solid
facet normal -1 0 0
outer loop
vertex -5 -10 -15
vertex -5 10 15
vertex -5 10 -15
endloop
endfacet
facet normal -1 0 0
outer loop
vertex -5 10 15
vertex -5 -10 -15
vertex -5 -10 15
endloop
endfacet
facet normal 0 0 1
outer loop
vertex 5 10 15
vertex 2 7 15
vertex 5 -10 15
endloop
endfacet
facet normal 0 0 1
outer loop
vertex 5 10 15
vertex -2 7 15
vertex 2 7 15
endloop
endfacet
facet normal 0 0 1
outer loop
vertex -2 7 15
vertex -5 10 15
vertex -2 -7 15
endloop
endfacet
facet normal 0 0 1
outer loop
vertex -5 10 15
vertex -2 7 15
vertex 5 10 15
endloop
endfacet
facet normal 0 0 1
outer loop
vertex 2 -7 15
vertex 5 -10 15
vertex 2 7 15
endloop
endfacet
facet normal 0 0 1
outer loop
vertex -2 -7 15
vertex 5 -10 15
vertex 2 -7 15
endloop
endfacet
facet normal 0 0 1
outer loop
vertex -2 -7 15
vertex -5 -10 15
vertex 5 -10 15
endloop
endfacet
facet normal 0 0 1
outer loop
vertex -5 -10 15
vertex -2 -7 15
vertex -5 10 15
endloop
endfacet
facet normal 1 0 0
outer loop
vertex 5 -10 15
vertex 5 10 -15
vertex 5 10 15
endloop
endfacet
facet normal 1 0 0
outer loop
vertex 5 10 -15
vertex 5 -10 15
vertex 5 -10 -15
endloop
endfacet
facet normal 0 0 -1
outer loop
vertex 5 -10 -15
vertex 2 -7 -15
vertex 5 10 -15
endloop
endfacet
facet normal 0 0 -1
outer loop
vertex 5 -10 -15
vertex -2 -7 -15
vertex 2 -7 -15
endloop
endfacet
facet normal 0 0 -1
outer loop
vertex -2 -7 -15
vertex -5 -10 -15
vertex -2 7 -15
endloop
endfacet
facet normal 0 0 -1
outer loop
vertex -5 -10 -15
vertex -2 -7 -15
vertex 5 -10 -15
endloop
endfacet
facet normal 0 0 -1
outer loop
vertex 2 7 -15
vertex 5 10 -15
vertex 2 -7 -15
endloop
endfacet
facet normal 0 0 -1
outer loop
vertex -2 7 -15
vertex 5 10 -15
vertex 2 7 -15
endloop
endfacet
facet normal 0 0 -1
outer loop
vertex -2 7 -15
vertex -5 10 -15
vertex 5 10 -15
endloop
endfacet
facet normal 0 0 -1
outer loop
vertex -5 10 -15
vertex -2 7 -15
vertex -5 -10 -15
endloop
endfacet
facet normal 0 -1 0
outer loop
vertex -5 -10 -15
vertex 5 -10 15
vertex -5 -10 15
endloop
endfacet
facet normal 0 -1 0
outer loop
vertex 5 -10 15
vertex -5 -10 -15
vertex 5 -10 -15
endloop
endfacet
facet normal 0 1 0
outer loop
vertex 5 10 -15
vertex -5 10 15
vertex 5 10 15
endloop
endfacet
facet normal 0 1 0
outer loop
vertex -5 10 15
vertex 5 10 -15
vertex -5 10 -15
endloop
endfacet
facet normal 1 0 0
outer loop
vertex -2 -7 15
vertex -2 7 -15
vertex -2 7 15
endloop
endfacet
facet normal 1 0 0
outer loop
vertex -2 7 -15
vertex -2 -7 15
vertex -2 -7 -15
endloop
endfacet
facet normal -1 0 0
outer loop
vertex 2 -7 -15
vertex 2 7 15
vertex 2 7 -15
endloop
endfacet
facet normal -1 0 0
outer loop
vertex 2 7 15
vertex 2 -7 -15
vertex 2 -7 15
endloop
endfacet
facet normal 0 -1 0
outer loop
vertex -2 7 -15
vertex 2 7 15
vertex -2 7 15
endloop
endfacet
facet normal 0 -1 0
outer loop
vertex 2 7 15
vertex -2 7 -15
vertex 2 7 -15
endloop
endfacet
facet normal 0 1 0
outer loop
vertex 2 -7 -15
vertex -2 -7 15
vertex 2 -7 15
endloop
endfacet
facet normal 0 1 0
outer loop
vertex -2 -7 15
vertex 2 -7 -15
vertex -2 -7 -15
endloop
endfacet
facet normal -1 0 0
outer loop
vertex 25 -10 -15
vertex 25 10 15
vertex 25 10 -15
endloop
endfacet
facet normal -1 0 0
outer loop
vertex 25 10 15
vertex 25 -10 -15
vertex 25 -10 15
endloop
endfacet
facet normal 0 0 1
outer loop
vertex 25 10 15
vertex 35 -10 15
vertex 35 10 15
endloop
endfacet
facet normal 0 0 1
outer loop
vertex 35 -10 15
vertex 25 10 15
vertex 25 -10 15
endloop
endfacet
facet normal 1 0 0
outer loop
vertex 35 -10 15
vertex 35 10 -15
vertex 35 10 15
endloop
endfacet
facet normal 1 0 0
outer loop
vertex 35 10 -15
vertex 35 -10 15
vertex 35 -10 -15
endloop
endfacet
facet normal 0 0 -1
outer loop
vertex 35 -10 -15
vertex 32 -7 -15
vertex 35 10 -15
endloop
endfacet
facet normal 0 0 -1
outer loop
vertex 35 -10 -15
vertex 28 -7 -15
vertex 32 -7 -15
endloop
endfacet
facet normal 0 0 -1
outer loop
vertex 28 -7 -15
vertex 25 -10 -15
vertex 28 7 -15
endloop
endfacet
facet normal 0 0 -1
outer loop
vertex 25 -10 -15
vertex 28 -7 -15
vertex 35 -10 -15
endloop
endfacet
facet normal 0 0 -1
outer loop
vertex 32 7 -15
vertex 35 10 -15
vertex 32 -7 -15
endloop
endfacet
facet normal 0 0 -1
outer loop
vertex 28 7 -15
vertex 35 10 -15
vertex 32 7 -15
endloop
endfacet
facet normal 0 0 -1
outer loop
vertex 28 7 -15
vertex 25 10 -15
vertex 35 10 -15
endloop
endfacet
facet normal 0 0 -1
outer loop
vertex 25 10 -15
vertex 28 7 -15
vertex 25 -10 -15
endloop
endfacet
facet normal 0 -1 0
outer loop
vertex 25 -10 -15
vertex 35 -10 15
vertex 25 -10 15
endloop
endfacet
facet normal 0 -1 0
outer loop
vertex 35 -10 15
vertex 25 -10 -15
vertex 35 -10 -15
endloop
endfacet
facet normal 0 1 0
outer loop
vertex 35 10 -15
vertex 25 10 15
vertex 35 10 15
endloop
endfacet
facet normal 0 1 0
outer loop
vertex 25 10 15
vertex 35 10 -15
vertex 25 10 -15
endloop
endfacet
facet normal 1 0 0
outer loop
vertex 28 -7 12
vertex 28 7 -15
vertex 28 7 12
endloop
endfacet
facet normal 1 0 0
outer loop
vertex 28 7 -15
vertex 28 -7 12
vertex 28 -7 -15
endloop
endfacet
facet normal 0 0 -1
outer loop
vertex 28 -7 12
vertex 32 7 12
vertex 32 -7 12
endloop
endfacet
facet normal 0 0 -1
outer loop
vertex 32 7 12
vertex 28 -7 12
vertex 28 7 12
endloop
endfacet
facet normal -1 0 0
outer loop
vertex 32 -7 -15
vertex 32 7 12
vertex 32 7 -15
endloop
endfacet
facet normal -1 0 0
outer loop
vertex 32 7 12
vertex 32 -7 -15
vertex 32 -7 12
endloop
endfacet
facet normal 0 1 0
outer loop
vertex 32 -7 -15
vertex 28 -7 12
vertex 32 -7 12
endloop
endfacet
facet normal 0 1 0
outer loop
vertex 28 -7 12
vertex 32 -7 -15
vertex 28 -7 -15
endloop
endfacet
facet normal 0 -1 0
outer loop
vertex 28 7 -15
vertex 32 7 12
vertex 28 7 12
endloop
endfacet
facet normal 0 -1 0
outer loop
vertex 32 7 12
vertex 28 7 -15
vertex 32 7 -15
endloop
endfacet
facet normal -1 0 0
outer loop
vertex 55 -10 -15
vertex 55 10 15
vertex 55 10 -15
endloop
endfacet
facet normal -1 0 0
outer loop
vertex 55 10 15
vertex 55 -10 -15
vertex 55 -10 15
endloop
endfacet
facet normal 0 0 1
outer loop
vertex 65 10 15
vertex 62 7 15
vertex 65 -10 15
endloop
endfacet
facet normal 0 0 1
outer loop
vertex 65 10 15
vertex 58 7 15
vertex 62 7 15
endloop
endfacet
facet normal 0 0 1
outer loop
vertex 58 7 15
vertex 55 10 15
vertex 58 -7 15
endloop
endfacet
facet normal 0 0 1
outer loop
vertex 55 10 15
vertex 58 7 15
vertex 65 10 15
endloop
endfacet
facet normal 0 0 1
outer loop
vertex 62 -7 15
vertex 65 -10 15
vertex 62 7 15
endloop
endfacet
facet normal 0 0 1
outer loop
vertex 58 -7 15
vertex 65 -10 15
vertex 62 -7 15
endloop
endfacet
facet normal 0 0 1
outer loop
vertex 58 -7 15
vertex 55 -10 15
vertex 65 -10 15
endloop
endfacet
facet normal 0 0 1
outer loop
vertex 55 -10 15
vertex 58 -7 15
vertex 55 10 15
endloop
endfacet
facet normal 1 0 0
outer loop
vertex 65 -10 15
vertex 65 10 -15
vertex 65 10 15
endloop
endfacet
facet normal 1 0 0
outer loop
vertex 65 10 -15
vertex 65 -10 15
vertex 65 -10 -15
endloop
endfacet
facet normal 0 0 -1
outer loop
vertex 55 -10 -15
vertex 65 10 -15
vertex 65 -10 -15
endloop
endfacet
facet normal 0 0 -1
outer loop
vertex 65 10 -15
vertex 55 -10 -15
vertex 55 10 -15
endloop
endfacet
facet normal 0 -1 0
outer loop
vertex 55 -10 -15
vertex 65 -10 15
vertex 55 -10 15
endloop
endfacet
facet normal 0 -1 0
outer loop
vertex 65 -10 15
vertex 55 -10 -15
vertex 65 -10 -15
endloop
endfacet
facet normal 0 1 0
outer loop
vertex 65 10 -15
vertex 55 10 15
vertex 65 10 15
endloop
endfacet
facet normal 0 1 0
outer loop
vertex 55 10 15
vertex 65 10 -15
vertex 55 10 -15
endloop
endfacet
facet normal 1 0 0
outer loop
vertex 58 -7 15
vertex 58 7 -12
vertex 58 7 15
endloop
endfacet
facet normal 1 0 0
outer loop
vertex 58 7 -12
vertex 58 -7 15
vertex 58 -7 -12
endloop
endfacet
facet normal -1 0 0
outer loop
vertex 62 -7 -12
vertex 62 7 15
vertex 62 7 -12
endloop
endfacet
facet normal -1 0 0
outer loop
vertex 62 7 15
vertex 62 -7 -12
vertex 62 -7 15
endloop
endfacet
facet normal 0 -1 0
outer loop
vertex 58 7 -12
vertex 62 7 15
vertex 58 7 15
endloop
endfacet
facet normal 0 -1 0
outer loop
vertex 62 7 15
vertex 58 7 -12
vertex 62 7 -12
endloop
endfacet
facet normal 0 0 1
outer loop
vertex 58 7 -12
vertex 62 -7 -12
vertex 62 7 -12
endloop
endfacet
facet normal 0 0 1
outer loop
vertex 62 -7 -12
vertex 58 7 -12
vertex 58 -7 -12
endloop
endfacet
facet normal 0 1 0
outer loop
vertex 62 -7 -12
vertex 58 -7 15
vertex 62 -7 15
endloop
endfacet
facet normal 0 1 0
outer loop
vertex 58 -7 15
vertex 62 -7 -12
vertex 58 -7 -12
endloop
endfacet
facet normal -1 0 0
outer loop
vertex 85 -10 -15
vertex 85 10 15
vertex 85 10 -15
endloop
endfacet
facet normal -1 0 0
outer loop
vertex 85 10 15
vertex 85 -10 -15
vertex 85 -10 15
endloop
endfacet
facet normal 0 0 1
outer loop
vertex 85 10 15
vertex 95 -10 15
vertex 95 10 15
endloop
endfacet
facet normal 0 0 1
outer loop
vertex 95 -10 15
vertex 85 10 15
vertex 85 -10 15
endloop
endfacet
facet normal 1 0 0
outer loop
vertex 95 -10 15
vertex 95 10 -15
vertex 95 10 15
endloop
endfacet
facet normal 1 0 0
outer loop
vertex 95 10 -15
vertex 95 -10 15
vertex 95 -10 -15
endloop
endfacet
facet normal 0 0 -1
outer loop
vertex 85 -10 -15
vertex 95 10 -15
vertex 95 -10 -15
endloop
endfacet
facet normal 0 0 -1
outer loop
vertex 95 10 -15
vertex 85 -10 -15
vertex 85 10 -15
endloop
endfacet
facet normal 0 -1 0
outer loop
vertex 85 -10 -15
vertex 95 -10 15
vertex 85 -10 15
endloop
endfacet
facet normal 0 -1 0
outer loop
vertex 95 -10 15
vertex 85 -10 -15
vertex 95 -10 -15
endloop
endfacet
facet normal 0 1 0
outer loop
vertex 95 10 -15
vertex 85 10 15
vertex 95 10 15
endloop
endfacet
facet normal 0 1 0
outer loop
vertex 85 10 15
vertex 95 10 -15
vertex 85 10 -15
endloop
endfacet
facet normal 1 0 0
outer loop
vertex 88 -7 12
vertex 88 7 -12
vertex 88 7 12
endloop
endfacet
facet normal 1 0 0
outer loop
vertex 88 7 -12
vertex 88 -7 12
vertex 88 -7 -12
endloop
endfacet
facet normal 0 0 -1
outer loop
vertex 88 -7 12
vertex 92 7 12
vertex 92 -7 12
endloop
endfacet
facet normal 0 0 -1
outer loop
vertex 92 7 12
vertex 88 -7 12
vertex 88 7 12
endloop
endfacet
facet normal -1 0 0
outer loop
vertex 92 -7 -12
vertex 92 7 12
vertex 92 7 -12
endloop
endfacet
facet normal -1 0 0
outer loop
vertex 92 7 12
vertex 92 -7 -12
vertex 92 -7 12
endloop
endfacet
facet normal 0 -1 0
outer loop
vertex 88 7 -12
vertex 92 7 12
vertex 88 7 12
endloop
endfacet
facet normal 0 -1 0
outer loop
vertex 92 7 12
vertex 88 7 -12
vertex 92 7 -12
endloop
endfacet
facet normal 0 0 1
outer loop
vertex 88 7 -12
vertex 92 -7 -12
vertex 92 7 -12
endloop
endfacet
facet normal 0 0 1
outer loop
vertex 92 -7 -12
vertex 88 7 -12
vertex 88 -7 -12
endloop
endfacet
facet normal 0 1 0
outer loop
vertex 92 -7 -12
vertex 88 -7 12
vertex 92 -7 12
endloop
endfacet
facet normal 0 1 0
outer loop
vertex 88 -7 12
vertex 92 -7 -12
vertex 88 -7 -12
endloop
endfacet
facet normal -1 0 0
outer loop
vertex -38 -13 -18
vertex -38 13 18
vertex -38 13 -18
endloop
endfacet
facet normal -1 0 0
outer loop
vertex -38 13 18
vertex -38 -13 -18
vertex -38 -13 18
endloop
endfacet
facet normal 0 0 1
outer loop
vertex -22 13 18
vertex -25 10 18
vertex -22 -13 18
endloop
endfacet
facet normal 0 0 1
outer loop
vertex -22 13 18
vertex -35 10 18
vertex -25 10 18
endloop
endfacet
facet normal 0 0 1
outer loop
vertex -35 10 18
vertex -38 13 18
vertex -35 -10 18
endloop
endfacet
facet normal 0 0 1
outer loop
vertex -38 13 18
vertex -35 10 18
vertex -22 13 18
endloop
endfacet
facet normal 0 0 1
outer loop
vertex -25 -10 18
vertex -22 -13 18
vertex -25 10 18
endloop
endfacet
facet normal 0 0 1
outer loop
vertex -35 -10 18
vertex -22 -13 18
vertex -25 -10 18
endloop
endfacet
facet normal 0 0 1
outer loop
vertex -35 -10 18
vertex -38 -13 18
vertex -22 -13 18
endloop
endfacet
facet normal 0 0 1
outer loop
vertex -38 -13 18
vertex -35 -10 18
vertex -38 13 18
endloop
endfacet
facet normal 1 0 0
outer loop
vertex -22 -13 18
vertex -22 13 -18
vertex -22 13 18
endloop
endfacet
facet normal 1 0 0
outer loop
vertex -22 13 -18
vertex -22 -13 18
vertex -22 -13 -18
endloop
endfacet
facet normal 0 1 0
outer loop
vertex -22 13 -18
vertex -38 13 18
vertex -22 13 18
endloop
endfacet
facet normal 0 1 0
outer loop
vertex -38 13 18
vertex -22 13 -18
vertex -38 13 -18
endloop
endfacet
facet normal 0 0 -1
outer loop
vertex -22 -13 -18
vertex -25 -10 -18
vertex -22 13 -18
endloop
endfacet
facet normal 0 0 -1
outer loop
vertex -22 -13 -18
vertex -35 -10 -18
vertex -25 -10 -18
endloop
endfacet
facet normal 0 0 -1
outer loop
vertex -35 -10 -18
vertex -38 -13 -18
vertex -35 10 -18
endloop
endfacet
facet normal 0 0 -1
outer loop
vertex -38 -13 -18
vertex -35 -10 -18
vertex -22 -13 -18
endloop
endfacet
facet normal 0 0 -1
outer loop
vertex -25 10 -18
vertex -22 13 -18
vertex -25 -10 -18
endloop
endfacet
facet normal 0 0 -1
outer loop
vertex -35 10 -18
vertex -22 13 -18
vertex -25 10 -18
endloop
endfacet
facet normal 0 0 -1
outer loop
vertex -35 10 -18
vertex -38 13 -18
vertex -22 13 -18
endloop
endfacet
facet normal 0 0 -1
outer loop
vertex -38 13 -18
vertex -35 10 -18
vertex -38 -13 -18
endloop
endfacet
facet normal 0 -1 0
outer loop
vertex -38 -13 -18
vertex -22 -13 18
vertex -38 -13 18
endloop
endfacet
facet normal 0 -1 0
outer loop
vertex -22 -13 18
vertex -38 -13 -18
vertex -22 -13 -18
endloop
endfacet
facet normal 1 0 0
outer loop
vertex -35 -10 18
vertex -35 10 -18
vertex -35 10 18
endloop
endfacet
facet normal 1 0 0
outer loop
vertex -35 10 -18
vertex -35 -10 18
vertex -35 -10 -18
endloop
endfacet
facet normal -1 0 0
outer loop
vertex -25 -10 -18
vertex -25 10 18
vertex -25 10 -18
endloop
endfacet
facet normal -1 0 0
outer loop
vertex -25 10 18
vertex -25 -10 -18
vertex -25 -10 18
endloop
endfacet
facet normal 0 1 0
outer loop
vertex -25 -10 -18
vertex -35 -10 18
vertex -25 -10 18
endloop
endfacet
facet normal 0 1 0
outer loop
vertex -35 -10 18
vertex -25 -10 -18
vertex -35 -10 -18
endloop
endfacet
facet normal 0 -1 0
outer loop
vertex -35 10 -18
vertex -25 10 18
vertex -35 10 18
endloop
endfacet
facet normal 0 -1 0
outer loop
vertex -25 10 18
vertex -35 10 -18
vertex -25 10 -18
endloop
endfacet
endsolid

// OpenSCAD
//
// Creates a hollow cube.
// Params:
//  r -- Size. Can be a single value (same value will be used for width, 
//       depth and height) or a list [width,depth,height].
//  t -- Thickness.
//  top -- [true, false]
//         true: Cube has a closed top.
//         false: Cube has an opened top.
//  bottom -- [true, false]
//            true: Cube has a closed bottom.
//            false: Cube has an opened bottom.
//  center -- If true it centers the object in origin [0,0,0].
//  inwards -- [true, false] If true, the cube has r radio and thickness
//             goes inwards. If false, the cube has r+t radio (thickness
//             goes outwards).
//
module hollow_cube(size=10, t=3, top=false, bottom=false, 
                   inwards=true, center=false) 
{

  // Get width, depth and height from size parameter.
  w = (size[0] != undef) ? size[0] : size;
  d = (size[1] != undef) ? size[1] : size;
  h = (size[2] != undef) ? size[2] : size;

  // Main cube height.
  height = (inwards) ? h : h + 2 * t;
  // Compute hollow cube height. If closed top and bottom then hollow 
  // cube leaves t (thickness) on top and bottom. If not let hollow
  // cube be a bit higher than main cube.
  h_height = (top && bottom)? height - 2 * t : height + 2;

  // Compute cube width. Thickness goes inwards or outwards.
  width = (inwards) ? w : w + 2 * t;
  // Hollow cube width.
  h_width = width - 2 * t;

  // Compute cube depth. Thickness goes inwards or outwards.
  depth = (inwards) ? d : d + 2 * t;
  // Hollow cube depth.
  h_depth = depth - 2 * t;

  // Compute hollow cube Z move to "open" if top and/or bottom are false.
  sign = (top)? -1 : +1;
  z = ((top && bottom) || (!top && !bottom)) ? 0 : sign * (t + 1);
  
  difference() 
  {
    // Main cube.
    cube([width, depth, height], center=center);
    // Lets compute the negative of the hollow.
    translate([0,0,z])
      cube([h_width, h_depth, h_height], center=center);
  }

}

// Hollow cube with opened top and bottom.
hollow_cube([10,20,30], center=true);

// Hollow cube with closed top and opened bottom. 
translate([30,0,0])
  hollow_cube([10,20,30],  top=true, center=true);

// Hollow cube with opened top and closed bottom. 
translate([60,0,0])
  hollow_cube([10,20,30], bottom=true, center=true);

// Hollow cube with closed top and bottom. 
translate([90,0,0])
  hollow_cube([10,20,30], top=true, bottom=true, center=true);

// Hollow cube with closed top and bottom. 
translate([-30,0,0])
  hollow_cube([10,20,30], inwards=false, center=true);

// hollow_cube([48,48,96], inwards=false, center=true, t=48);
// color("red")
// cube([48,49,96], center=true);
